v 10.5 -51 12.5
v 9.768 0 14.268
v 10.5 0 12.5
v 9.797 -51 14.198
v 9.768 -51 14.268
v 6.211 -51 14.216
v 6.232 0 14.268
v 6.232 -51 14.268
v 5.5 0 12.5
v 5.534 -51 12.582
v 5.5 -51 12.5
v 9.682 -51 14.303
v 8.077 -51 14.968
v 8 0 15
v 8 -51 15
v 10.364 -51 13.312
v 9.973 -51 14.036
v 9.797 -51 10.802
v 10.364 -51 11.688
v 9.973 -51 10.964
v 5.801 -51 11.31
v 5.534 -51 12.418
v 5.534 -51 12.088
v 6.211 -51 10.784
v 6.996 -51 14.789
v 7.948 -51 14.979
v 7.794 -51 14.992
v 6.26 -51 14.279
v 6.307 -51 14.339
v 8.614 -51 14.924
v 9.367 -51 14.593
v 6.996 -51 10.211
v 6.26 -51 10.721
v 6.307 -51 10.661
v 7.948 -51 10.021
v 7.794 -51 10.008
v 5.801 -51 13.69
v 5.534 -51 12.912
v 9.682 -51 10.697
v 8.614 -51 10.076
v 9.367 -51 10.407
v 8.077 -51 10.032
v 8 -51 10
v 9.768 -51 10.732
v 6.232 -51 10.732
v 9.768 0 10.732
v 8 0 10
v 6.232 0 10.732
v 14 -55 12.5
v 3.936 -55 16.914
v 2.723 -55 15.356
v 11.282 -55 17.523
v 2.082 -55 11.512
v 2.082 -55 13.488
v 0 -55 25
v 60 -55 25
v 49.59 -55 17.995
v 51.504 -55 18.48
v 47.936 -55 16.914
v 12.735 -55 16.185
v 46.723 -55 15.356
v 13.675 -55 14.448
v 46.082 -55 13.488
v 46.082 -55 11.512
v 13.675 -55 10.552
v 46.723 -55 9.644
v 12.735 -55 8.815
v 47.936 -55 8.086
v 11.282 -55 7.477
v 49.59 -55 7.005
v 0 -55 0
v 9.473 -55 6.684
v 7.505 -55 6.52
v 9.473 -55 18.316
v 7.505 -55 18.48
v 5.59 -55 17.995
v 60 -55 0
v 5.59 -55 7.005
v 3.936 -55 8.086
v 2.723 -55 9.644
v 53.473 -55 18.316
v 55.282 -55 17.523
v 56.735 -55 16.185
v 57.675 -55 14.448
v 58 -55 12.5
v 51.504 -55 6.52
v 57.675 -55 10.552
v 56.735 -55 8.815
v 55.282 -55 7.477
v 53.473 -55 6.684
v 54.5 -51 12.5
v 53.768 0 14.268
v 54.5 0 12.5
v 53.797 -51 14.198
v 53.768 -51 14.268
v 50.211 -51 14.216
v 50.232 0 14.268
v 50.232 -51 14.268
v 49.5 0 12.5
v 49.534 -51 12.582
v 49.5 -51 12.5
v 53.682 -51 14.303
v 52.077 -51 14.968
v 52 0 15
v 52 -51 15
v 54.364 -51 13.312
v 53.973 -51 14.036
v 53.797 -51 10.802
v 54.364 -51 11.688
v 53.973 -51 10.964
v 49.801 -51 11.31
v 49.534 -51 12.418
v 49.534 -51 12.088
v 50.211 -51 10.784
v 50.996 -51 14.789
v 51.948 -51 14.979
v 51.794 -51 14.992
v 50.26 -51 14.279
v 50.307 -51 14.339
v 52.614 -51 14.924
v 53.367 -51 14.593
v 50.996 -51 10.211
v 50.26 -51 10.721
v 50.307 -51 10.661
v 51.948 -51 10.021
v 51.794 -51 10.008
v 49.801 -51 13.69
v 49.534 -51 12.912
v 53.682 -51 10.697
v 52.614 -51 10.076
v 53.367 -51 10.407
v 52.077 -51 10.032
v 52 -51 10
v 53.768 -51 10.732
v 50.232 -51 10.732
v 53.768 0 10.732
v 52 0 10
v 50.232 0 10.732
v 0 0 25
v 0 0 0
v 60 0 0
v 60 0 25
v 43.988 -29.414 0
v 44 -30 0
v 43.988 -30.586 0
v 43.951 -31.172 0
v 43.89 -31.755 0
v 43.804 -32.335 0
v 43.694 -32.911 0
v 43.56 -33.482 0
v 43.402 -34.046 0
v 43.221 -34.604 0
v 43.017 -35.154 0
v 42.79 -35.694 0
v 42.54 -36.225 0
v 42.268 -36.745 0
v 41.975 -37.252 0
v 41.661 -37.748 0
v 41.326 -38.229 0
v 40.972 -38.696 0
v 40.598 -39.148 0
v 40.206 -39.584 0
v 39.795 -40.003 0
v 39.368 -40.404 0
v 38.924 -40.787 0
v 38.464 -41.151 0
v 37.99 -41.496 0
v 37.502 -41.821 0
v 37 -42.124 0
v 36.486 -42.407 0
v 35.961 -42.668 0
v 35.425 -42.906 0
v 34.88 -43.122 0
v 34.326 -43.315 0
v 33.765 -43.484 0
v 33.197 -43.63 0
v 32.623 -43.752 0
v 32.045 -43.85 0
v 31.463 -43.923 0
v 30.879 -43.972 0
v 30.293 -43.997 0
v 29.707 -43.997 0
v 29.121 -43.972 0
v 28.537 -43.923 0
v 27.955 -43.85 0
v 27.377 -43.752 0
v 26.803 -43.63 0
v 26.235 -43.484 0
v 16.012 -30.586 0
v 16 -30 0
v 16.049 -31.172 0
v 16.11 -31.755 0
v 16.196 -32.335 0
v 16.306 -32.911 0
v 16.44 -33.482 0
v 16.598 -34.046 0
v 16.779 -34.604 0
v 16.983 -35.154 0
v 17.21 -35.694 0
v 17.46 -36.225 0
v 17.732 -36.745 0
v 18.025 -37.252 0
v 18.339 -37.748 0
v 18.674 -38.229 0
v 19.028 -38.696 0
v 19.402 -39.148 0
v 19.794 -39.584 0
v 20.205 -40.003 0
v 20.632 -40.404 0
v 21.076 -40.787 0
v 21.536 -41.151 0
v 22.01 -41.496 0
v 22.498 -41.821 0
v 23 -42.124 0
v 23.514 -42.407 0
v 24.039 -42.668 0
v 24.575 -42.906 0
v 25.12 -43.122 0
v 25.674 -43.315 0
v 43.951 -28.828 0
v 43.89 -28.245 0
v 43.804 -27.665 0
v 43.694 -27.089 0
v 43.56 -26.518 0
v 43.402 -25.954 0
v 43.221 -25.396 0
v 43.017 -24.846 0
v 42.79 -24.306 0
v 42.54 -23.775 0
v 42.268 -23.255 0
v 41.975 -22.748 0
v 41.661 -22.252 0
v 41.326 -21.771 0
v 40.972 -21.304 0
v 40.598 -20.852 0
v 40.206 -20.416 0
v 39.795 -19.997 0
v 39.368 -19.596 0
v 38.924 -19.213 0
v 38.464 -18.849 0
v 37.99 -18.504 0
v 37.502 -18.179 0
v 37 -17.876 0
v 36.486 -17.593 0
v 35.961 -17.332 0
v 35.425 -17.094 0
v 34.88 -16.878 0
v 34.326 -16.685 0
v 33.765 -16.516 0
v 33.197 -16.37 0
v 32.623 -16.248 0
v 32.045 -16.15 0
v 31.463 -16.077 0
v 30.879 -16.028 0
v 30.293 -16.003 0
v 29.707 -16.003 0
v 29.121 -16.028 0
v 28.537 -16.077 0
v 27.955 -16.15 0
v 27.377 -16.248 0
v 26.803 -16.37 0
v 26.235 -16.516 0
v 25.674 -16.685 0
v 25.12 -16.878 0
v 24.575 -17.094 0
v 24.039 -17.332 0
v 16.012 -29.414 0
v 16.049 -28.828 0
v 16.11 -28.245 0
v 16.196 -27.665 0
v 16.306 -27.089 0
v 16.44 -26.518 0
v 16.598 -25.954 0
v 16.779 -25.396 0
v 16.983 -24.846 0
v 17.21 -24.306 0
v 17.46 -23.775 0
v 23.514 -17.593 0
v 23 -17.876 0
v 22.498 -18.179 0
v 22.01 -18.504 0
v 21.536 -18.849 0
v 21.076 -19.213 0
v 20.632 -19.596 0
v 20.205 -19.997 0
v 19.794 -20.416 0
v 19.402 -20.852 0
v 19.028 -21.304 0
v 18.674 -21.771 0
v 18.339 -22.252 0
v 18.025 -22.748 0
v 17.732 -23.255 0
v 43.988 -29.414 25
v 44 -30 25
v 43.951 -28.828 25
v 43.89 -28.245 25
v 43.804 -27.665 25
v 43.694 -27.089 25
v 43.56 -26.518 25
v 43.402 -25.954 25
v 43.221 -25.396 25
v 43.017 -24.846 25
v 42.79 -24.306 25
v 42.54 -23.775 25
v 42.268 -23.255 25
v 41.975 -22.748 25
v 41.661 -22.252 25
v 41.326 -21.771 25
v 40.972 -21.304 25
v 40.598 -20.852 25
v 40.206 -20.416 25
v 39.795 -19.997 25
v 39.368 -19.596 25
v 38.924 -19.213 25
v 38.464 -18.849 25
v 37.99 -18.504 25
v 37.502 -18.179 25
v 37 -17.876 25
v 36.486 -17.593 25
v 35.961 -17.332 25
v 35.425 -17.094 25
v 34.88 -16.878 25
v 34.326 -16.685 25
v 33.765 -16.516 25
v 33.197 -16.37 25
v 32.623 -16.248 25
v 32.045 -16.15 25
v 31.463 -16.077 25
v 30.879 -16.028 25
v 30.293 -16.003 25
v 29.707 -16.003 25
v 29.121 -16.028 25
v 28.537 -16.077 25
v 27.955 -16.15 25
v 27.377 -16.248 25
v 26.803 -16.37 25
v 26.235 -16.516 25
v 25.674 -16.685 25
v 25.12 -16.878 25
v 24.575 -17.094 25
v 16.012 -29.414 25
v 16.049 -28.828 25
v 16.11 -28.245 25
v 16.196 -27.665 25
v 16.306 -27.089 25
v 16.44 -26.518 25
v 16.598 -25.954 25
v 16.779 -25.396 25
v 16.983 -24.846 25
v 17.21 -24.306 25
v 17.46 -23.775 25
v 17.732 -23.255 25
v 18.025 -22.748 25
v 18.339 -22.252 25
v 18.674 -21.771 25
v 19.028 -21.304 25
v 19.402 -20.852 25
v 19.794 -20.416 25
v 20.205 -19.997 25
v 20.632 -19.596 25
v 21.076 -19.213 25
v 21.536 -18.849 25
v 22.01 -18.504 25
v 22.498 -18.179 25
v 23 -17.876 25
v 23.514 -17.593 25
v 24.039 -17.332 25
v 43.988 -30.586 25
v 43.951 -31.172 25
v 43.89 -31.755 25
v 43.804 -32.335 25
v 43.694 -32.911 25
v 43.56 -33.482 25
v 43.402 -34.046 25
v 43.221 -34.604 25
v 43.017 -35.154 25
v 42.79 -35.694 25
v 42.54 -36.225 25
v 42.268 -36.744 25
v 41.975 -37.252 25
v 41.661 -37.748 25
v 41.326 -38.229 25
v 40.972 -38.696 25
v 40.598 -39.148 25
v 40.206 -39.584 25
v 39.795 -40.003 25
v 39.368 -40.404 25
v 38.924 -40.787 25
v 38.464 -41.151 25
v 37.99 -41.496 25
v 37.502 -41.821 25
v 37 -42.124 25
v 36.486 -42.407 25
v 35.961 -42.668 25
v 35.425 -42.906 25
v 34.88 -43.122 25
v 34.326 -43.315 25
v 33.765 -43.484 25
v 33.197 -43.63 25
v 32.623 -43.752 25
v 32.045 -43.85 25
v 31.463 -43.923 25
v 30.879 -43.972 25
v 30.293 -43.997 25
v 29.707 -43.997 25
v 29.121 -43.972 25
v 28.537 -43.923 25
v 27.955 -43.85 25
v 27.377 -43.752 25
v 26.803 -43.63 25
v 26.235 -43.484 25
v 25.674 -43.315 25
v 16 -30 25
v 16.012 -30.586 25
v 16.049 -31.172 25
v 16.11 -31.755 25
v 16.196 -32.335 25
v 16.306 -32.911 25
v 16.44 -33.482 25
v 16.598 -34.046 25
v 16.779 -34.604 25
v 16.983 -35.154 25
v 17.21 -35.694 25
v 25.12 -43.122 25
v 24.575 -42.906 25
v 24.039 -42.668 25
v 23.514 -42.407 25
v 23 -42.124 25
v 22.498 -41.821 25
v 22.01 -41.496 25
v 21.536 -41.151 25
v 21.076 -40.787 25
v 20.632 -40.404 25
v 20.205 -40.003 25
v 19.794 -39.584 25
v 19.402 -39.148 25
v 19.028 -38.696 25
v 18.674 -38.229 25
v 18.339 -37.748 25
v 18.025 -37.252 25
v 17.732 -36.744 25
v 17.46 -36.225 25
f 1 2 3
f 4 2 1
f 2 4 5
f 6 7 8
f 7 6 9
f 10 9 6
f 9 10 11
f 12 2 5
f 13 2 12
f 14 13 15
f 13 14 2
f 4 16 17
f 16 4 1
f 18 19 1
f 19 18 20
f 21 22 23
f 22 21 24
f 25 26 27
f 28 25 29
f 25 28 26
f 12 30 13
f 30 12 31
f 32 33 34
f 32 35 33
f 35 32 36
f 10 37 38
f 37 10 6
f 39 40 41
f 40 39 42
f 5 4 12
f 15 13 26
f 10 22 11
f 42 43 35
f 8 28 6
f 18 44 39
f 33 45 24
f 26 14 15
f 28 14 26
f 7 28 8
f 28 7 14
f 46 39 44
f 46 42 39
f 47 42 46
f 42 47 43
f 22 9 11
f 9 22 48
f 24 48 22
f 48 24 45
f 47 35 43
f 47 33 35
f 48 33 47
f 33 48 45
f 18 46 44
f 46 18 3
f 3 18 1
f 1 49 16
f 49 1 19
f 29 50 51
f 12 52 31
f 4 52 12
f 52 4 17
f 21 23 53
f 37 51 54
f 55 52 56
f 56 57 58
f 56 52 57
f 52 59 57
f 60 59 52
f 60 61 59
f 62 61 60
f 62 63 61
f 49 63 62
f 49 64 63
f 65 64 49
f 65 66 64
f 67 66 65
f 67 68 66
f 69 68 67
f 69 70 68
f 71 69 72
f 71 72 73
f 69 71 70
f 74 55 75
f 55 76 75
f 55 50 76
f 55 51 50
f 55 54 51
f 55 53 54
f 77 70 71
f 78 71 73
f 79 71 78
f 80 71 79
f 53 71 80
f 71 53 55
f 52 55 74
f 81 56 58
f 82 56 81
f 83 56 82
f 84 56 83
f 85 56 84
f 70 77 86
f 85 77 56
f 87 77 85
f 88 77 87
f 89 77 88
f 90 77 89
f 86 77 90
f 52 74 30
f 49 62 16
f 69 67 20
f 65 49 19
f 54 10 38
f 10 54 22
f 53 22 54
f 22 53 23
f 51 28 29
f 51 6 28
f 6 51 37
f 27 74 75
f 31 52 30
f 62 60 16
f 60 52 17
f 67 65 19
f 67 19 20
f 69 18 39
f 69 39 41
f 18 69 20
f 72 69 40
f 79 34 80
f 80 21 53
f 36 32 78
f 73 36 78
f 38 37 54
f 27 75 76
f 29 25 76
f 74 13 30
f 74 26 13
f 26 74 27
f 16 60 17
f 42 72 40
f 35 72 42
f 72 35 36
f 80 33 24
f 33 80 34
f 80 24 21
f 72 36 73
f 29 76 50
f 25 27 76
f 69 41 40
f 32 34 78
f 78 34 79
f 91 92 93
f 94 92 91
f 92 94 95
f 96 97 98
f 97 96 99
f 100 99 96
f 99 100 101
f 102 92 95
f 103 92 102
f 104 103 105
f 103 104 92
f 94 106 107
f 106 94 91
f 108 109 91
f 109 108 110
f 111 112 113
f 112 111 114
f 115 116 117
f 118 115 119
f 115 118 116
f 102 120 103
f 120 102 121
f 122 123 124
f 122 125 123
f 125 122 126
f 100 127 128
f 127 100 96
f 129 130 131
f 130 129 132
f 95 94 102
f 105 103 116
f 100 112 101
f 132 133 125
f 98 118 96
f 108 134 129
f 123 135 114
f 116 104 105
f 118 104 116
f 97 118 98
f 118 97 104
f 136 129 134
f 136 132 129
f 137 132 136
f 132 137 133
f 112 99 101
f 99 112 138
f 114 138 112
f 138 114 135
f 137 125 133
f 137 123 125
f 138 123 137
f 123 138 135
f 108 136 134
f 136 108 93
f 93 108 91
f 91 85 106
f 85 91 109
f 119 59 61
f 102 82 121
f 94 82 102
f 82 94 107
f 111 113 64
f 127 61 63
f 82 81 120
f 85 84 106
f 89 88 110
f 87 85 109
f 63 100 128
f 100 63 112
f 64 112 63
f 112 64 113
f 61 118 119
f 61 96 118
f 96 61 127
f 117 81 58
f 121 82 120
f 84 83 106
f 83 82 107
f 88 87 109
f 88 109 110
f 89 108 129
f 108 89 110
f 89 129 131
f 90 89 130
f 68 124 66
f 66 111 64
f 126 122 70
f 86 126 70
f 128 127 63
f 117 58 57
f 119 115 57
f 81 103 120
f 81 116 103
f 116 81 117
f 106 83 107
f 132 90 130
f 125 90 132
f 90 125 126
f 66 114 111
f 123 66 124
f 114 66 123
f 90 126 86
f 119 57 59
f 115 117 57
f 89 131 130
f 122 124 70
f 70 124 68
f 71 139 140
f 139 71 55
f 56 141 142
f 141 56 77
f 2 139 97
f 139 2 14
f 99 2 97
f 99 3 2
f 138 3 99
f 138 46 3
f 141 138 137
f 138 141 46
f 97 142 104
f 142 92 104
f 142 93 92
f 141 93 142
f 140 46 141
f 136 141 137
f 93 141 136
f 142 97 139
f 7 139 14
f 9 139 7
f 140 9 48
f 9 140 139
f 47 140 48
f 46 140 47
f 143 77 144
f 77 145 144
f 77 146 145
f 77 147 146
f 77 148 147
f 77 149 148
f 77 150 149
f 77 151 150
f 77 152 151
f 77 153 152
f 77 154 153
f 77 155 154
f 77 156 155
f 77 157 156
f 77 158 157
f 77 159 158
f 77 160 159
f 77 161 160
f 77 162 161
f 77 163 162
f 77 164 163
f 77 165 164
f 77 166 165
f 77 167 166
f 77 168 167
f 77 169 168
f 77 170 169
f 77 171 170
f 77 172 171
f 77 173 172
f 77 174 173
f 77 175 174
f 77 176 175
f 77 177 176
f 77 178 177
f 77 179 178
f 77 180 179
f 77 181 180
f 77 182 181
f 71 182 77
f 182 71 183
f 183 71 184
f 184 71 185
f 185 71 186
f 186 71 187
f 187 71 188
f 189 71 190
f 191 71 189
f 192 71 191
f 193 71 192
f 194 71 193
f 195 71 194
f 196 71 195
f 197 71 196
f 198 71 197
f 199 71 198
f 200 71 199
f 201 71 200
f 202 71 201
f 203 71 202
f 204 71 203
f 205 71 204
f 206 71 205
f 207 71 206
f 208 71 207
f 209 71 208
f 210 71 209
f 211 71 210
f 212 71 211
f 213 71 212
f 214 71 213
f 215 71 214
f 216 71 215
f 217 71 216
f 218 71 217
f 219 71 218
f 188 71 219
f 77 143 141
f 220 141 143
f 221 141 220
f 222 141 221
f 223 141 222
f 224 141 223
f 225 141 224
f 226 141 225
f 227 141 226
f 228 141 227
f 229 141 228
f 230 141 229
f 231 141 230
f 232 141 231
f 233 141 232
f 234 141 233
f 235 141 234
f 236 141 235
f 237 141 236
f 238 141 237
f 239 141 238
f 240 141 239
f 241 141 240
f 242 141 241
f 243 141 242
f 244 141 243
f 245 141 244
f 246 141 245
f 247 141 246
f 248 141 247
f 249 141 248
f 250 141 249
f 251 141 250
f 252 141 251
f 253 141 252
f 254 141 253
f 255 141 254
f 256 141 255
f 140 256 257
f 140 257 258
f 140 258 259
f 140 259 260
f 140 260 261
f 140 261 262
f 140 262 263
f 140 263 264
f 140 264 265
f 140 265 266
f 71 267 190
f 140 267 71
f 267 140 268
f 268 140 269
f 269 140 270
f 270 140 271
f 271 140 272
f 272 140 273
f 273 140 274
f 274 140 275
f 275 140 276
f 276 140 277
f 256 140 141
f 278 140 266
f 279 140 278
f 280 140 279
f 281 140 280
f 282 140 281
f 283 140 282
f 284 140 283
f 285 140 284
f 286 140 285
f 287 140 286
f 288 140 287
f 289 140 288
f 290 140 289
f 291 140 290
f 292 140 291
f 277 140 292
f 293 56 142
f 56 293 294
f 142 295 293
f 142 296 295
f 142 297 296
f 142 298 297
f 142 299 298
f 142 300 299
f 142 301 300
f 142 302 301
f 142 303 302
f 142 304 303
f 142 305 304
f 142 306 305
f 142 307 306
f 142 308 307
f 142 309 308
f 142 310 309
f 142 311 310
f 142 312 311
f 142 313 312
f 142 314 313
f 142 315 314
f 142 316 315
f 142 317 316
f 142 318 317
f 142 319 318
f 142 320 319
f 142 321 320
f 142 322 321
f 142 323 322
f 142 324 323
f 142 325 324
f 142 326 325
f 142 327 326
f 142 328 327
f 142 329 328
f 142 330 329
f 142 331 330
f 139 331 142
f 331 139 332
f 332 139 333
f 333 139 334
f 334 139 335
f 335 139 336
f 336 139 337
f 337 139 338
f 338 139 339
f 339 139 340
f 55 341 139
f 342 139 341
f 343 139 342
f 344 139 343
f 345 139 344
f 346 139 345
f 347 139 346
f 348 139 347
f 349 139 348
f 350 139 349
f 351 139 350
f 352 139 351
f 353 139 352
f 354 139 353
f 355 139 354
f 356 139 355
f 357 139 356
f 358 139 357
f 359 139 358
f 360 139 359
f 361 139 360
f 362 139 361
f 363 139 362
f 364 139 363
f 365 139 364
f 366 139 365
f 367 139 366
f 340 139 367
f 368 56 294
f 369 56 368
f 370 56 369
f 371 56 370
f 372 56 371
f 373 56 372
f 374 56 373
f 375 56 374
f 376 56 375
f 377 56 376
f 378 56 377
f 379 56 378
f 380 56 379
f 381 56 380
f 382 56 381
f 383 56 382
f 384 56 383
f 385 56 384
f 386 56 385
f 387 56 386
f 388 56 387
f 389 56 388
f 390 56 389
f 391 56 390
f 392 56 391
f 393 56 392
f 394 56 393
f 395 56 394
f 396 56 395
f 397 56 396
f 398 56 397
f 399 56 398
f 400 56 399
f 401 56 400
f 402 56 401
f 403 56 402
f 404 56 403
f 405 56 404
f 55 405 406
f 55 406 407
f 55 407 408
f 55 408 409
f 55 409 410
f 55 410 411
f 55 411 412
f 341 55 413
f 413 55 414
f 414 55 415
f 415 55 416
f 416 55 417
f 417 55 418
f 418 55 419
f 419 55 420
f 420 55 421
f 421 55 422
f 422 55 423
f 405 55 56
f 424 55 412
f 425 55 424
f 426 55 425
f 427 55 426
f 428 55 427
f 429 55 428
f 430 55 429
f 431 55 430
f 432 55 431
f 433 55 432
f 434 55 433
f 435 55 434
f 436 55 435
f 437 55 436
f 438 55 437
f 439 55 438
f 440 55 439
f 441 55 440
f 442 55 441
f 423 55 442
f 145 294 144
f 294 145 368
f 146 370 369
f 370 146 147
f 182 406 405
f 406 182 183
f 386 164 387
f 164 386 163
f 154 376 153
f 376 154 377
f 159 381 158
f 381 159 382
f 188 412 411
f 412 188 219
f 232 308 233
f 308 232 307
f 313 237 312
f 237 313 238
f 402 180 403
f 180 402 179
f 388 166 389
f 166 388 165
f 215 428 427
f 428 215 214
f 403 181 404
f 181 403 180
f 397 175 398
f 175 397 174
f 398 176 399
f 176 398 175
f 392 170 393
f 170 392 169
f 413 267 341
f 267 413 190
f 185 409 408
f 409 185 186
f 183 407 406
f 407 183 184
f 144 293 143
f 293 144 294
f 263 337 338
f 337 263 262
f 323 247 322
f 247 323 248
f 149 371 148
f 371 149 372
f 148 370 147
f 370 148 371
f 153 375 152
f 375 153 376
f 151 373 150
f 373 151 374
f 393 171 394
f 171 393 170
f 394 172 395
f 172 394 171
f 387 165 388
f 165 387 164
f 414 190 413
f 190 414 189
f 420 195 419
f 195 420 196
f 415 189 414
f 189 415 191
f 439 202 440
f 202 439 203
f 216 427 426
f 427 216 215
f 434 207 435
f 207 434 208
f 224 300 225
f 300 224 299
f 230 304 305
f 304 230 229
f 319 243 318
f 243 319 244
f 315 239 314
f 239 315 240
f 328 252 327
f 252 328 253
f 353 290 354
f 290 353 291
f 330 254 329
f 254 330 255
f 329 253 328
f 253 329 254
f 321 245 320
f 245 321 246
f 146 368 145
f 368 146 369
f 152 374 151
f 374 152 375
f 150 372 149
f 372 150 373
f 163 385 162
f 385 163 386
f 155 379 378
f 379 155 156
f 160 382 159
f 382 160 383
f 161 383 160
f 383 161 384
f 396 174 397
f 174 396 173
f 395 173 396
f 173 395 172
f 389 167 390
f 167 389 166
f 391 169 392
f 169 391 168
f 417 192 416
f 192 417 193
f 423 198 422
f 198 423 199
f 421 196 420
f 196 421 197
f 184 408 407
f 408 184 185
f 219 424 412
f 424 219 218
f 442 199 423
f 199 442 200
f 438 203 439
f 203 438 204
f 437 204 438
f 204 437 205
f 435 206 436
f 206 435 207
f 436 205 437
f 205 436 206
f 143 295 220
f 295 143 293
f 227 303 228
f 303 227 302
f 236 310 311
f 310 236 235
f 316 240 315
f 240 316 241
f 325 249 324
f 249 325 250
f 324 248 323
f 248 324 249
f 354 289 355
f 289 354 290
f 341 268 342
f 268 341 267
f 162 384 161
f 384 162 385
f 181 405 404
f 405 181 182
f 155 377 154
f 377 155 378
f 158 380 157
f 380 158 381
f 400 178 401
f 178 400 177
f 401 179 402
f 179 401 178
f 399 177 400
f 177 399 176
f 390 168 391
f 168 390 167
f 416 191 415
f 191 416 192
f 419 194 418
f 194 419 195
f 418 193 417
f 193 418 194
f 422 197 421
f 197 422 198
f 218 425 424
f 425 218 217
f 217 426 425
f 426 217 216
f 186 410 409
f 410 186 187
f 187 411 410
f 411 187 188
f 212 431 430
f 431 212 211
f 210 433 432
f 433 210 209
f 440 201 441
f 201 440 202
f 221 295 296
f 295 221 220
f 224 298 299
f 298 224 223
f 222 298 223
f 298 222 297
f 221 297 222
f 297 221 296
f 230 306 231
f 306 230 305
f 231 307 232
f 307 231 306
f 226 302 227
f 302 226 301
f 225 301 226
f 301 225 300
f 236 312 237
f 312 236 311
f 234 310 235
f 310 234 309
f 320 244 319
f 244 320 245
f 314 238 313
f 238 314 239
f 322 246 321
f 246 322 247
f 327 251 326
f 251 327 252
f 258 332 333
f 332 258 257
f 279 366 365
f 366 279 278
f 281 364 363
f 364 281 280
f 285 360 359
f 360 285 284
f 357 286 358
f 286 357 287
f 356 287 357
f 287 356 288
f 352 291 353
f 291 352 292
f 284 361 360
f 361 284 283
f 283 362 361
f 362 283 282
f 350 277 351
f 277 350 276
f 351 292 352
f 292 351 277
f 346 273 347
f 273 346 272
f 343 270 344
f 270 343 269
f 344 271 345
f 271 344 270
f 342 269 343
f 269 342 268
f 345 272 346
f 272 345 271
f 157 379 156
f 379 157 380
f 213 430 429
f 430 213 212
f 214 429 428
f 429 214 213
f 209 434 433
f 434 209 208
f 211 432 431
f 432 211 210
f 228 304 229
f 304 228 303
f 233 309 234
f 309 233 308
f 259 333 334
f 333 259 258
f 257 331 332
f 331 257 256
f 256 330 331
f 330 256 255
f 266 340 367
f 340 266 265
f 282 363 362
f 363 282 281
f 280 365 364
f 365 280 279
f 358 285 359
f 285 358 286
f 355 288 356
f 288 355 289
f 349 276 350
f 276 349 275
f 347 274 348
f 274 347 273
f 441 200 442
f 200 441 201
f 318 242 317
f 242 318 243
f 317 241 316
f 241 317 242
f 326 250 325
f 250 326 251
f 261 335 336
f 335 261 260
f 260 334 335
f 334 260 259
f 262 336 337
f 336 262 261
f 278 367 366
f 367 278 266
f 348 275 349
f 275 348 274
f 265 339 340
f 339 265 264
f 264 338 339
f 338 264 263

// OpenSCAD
pipe_dia = 28;
rotate([90,0,0]){
    difference(){
        difference(){
            difference(){
                cube([60,25,55]);
                translate([30, 27, 30]){
                    rotate([90,0,0]){
                        cylinder(30, pipe_dia/2, pipe_dia/2, $fn=150);
                    }
                }
            }
            translate([8, 25/2, -9]){
                screwhole();
            }
        }
        translate([ 60-8, 25/2, -9]){
            screwhole();
        }
    }
}
module screwhole(){
    union(){
        cylinder(r=2.5, h=60);
        translate([0,0,60]){
            cylinder(r1=2.5, r2=6, h=4);
        }
    }
}
